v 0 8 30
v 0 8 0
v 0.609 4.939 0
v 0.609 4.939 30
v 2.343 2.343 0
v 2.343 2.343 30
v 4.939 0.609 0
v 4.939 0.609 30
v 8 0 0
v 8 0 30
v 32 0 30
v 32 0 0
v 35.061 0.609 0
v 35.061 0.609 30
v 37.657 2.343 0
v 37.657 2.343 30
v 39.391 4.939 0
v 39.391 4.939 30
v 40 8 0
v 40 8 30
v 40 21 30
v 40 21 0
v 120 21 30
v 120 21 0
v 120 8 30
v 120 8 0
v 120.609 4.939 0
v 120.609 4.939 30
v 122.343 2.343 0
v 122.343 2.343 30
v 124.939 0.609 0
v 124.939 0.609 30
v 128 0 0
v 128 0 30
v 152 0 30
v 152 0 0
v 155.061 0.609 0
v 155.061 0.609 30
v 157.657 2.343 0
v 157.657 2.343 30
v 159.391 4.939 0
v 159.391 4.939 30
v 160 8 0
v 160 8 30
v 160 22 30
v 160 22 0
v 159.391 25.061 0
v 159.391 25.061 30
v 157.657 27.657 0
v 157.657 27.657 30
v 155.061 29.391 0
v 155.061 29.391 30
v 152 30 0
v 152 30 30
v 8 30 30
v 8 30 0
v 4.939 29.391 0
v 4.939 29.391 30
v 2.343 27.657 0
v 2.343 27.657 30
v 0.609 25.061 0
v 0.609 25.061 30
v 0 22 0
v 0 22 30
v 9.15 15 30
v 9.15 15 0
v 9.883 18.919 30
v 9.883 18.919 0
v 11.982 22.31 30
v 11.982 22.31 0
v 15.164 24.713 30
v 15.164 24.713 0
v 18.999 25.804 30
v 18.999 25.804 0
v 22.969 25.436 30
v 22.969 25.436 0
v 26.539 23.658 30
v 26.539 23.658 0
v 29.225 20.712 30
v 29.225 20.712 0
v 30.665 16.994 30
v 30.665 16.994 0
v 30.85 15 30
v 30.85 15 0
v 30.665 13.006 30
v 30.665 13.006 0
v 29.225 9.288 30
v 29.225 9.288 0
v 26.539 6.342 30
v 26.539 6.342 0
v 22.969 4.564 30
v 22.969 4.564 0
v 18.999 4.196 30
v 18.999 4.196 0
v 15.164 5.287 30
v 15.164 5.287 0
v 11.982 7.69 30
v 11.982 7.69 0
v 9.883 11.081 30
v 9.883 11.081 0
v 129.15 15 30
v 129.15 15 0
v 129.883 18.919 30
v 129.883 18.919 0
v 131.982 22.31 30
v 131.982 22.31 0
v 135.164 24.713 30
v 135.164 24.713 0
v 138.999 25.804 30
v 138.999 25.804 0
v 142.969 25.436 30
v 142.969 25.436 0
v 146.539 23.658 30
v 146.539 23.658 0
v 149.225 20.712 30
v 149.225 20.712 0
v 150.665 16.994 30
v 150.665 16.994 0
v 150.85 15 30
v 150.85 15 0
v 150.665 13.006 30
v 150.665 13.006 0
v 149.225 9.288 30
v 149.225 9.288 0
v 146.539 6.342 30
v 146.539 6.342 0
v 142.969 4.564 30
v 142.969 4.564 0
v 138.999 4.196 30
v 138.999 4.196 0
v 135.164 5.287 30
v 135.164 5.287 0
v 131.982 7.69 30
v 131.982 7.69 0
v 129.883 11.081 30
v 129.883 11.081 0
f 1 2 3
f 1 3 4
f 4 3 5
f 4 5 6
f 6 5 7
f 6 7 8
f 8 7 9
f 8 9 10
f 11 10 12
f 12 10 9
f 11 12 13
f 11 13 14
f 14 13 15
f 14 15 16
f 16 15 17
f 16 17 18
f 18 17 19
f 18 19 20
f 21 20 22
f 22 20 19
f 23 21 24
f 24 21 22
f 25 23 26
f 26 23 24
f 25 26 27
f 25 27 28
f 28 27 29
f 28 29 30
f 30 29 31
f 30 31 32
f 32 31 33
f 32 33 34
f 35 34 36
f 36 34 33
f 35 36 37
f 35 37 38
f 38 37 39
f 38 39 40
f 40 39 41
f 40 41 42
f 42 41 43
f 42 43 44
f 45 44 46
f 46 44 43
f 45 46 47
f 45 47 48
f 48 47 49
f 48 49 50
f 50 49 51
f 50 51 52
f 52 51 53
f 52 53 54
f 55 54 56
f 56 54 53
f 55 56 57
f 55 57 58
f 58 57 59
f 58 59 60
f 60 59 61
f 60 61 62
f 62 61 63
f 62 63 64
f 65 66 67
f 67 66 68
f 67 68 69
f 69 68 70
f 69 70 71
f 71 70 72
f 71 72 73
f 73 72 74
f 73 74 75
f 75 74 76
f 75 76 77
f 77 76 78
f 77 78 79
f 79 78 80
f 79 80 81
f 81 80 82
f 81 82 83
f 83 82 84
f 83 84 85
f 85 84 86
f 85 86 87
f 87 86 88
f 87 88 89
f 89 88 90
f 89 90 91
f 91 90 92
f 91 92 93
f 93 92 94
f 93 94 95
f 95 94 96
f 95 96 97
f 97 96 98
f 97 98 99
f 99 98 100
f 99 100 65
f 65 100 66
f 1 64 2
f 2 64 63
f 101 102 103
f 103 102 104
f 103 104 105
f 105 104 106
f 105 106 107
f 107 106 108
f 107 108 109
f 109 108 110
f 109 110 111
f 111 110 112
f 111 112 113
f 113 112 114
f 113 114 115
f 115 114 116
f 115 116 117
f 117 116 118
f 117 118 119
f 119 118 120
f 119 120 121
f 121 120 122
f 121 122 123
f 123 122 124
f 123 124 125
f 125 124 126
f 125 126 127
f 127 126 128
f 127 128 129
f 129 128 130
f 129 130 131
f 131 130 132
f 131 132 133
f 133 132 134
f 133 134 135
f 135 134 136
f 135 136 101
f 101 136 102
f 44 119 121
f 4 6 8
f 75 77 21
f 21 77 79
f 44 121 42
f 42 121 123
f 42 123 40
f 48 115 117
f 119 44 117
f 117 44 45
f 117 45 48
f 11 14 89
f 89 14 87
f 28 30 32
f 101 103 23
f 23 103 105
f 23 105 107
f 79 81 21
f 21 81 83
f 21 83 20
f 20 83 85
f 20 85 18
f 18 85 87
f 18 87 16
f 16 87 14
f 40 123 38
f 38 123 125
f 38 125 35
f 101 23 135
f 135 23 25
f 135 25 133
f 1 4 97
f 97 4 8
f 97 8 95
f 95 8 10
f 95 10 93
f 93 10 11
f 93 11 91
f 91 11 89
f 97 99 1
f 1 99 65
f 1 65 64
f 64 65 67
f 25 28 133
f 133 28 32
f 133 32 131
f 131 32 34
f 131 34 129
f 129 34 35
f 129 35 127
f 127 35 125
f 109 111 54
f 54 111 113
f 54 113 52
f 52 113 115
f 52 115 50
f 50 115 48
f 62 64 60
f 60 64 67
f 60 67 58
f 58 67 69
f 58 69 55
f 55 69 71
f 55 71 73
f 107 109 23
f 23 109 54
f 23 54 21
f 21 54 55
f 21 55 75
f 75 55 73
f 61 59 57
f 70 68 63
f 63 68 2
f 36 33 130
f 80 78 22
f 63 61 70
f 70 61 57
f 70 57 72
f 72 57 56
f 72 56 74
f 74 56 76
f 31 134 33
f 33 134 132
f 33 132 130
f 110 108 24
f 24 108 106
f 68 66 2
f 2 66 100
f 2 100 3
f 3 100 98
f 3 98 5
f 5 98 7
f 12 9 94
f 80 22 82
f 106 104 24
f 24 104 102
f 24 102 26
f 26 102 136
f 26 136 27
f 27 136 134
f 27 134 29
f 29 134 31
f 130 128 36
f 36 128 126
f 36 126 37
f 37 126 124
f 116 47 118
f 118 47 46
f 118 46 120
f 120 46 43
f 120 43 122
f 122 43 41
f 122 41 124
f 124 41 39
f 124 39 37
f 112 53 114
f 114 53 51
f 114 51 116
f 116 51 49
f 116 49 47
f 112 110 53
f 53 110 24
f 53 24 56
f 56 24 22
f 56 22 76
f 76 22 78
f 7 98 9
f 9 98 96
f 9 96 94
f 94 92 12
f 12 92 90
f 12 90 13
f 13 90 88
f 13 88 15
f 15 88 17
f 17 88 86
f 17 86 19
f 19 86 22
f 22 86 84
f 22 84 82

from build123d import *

# Parameters (mm, degrees)
SKETCH2_R           = 10.85
SKETCH2_W           = 80
SKETCH2_H           = 9
BOSS_EXTRUDE1_DEPTH = 30


with BuildPart() as part:
    # Sketch2 → Boss-Extrude1 (new body)
    # profile 1 of 3: a face of its own
    with BuildSketch(Plane.XY):
        with BuildLine():
            ThreePointArc((0, 8), (2.343145751, 2.343145751), (8, 0))
            Line((8, 0), (32, 0))
            ThreePointArc((32, 0), (37.656854249, 2.343145751), (40, 8))
            Line((40, 8), (40, 21))
            Line((40, 21), (40, 30))
            Line((40, 30), (8, 30))
            ThreePointArc((8, 30), (2.343145751, 27.656854249), (0, 22))
            Line((0, 22), (0, 8))
        make_face()
        with Locations((20, 15)):
            Circle(SKETCH2_R, mode=Mode.SUBTRACT)
    # profile 2 of 3: a face of its own
    with BuildSketch(Plane.XY):
        with Locations((80, 25.5)):
            Rectangle(SKETCH2_W, SKETCH2_H)
    # profile 3 of 3: a face of its own
    with BuildSketch(Plane.XY):
        with BuildLine():
            Line((120, 30), (120, 21))
            Line((120, 21), (120, 8))
            ThreePointArc((120, 8), (122.343145751, 2.343145751), (128, 0))
            Line((128, 0), (152, 0))
            ThreePointArc((152, 0), (157.656854249, 2.343145751), (160, 8))
            Line((160, 8), (160, 22))
            ThreePointArc((160, 22), (157.656854249, 27.656854249), (152, 30))
            Line((152, 30), (120, 30))
        make_face()
        with Locations((140, 15)):
            Circle(SKETCH2_R, mode=Mode.SUBTRACT)
    extrude(amount=BOSS_EXTRUDE1_DEPTH)


solid = part.part
